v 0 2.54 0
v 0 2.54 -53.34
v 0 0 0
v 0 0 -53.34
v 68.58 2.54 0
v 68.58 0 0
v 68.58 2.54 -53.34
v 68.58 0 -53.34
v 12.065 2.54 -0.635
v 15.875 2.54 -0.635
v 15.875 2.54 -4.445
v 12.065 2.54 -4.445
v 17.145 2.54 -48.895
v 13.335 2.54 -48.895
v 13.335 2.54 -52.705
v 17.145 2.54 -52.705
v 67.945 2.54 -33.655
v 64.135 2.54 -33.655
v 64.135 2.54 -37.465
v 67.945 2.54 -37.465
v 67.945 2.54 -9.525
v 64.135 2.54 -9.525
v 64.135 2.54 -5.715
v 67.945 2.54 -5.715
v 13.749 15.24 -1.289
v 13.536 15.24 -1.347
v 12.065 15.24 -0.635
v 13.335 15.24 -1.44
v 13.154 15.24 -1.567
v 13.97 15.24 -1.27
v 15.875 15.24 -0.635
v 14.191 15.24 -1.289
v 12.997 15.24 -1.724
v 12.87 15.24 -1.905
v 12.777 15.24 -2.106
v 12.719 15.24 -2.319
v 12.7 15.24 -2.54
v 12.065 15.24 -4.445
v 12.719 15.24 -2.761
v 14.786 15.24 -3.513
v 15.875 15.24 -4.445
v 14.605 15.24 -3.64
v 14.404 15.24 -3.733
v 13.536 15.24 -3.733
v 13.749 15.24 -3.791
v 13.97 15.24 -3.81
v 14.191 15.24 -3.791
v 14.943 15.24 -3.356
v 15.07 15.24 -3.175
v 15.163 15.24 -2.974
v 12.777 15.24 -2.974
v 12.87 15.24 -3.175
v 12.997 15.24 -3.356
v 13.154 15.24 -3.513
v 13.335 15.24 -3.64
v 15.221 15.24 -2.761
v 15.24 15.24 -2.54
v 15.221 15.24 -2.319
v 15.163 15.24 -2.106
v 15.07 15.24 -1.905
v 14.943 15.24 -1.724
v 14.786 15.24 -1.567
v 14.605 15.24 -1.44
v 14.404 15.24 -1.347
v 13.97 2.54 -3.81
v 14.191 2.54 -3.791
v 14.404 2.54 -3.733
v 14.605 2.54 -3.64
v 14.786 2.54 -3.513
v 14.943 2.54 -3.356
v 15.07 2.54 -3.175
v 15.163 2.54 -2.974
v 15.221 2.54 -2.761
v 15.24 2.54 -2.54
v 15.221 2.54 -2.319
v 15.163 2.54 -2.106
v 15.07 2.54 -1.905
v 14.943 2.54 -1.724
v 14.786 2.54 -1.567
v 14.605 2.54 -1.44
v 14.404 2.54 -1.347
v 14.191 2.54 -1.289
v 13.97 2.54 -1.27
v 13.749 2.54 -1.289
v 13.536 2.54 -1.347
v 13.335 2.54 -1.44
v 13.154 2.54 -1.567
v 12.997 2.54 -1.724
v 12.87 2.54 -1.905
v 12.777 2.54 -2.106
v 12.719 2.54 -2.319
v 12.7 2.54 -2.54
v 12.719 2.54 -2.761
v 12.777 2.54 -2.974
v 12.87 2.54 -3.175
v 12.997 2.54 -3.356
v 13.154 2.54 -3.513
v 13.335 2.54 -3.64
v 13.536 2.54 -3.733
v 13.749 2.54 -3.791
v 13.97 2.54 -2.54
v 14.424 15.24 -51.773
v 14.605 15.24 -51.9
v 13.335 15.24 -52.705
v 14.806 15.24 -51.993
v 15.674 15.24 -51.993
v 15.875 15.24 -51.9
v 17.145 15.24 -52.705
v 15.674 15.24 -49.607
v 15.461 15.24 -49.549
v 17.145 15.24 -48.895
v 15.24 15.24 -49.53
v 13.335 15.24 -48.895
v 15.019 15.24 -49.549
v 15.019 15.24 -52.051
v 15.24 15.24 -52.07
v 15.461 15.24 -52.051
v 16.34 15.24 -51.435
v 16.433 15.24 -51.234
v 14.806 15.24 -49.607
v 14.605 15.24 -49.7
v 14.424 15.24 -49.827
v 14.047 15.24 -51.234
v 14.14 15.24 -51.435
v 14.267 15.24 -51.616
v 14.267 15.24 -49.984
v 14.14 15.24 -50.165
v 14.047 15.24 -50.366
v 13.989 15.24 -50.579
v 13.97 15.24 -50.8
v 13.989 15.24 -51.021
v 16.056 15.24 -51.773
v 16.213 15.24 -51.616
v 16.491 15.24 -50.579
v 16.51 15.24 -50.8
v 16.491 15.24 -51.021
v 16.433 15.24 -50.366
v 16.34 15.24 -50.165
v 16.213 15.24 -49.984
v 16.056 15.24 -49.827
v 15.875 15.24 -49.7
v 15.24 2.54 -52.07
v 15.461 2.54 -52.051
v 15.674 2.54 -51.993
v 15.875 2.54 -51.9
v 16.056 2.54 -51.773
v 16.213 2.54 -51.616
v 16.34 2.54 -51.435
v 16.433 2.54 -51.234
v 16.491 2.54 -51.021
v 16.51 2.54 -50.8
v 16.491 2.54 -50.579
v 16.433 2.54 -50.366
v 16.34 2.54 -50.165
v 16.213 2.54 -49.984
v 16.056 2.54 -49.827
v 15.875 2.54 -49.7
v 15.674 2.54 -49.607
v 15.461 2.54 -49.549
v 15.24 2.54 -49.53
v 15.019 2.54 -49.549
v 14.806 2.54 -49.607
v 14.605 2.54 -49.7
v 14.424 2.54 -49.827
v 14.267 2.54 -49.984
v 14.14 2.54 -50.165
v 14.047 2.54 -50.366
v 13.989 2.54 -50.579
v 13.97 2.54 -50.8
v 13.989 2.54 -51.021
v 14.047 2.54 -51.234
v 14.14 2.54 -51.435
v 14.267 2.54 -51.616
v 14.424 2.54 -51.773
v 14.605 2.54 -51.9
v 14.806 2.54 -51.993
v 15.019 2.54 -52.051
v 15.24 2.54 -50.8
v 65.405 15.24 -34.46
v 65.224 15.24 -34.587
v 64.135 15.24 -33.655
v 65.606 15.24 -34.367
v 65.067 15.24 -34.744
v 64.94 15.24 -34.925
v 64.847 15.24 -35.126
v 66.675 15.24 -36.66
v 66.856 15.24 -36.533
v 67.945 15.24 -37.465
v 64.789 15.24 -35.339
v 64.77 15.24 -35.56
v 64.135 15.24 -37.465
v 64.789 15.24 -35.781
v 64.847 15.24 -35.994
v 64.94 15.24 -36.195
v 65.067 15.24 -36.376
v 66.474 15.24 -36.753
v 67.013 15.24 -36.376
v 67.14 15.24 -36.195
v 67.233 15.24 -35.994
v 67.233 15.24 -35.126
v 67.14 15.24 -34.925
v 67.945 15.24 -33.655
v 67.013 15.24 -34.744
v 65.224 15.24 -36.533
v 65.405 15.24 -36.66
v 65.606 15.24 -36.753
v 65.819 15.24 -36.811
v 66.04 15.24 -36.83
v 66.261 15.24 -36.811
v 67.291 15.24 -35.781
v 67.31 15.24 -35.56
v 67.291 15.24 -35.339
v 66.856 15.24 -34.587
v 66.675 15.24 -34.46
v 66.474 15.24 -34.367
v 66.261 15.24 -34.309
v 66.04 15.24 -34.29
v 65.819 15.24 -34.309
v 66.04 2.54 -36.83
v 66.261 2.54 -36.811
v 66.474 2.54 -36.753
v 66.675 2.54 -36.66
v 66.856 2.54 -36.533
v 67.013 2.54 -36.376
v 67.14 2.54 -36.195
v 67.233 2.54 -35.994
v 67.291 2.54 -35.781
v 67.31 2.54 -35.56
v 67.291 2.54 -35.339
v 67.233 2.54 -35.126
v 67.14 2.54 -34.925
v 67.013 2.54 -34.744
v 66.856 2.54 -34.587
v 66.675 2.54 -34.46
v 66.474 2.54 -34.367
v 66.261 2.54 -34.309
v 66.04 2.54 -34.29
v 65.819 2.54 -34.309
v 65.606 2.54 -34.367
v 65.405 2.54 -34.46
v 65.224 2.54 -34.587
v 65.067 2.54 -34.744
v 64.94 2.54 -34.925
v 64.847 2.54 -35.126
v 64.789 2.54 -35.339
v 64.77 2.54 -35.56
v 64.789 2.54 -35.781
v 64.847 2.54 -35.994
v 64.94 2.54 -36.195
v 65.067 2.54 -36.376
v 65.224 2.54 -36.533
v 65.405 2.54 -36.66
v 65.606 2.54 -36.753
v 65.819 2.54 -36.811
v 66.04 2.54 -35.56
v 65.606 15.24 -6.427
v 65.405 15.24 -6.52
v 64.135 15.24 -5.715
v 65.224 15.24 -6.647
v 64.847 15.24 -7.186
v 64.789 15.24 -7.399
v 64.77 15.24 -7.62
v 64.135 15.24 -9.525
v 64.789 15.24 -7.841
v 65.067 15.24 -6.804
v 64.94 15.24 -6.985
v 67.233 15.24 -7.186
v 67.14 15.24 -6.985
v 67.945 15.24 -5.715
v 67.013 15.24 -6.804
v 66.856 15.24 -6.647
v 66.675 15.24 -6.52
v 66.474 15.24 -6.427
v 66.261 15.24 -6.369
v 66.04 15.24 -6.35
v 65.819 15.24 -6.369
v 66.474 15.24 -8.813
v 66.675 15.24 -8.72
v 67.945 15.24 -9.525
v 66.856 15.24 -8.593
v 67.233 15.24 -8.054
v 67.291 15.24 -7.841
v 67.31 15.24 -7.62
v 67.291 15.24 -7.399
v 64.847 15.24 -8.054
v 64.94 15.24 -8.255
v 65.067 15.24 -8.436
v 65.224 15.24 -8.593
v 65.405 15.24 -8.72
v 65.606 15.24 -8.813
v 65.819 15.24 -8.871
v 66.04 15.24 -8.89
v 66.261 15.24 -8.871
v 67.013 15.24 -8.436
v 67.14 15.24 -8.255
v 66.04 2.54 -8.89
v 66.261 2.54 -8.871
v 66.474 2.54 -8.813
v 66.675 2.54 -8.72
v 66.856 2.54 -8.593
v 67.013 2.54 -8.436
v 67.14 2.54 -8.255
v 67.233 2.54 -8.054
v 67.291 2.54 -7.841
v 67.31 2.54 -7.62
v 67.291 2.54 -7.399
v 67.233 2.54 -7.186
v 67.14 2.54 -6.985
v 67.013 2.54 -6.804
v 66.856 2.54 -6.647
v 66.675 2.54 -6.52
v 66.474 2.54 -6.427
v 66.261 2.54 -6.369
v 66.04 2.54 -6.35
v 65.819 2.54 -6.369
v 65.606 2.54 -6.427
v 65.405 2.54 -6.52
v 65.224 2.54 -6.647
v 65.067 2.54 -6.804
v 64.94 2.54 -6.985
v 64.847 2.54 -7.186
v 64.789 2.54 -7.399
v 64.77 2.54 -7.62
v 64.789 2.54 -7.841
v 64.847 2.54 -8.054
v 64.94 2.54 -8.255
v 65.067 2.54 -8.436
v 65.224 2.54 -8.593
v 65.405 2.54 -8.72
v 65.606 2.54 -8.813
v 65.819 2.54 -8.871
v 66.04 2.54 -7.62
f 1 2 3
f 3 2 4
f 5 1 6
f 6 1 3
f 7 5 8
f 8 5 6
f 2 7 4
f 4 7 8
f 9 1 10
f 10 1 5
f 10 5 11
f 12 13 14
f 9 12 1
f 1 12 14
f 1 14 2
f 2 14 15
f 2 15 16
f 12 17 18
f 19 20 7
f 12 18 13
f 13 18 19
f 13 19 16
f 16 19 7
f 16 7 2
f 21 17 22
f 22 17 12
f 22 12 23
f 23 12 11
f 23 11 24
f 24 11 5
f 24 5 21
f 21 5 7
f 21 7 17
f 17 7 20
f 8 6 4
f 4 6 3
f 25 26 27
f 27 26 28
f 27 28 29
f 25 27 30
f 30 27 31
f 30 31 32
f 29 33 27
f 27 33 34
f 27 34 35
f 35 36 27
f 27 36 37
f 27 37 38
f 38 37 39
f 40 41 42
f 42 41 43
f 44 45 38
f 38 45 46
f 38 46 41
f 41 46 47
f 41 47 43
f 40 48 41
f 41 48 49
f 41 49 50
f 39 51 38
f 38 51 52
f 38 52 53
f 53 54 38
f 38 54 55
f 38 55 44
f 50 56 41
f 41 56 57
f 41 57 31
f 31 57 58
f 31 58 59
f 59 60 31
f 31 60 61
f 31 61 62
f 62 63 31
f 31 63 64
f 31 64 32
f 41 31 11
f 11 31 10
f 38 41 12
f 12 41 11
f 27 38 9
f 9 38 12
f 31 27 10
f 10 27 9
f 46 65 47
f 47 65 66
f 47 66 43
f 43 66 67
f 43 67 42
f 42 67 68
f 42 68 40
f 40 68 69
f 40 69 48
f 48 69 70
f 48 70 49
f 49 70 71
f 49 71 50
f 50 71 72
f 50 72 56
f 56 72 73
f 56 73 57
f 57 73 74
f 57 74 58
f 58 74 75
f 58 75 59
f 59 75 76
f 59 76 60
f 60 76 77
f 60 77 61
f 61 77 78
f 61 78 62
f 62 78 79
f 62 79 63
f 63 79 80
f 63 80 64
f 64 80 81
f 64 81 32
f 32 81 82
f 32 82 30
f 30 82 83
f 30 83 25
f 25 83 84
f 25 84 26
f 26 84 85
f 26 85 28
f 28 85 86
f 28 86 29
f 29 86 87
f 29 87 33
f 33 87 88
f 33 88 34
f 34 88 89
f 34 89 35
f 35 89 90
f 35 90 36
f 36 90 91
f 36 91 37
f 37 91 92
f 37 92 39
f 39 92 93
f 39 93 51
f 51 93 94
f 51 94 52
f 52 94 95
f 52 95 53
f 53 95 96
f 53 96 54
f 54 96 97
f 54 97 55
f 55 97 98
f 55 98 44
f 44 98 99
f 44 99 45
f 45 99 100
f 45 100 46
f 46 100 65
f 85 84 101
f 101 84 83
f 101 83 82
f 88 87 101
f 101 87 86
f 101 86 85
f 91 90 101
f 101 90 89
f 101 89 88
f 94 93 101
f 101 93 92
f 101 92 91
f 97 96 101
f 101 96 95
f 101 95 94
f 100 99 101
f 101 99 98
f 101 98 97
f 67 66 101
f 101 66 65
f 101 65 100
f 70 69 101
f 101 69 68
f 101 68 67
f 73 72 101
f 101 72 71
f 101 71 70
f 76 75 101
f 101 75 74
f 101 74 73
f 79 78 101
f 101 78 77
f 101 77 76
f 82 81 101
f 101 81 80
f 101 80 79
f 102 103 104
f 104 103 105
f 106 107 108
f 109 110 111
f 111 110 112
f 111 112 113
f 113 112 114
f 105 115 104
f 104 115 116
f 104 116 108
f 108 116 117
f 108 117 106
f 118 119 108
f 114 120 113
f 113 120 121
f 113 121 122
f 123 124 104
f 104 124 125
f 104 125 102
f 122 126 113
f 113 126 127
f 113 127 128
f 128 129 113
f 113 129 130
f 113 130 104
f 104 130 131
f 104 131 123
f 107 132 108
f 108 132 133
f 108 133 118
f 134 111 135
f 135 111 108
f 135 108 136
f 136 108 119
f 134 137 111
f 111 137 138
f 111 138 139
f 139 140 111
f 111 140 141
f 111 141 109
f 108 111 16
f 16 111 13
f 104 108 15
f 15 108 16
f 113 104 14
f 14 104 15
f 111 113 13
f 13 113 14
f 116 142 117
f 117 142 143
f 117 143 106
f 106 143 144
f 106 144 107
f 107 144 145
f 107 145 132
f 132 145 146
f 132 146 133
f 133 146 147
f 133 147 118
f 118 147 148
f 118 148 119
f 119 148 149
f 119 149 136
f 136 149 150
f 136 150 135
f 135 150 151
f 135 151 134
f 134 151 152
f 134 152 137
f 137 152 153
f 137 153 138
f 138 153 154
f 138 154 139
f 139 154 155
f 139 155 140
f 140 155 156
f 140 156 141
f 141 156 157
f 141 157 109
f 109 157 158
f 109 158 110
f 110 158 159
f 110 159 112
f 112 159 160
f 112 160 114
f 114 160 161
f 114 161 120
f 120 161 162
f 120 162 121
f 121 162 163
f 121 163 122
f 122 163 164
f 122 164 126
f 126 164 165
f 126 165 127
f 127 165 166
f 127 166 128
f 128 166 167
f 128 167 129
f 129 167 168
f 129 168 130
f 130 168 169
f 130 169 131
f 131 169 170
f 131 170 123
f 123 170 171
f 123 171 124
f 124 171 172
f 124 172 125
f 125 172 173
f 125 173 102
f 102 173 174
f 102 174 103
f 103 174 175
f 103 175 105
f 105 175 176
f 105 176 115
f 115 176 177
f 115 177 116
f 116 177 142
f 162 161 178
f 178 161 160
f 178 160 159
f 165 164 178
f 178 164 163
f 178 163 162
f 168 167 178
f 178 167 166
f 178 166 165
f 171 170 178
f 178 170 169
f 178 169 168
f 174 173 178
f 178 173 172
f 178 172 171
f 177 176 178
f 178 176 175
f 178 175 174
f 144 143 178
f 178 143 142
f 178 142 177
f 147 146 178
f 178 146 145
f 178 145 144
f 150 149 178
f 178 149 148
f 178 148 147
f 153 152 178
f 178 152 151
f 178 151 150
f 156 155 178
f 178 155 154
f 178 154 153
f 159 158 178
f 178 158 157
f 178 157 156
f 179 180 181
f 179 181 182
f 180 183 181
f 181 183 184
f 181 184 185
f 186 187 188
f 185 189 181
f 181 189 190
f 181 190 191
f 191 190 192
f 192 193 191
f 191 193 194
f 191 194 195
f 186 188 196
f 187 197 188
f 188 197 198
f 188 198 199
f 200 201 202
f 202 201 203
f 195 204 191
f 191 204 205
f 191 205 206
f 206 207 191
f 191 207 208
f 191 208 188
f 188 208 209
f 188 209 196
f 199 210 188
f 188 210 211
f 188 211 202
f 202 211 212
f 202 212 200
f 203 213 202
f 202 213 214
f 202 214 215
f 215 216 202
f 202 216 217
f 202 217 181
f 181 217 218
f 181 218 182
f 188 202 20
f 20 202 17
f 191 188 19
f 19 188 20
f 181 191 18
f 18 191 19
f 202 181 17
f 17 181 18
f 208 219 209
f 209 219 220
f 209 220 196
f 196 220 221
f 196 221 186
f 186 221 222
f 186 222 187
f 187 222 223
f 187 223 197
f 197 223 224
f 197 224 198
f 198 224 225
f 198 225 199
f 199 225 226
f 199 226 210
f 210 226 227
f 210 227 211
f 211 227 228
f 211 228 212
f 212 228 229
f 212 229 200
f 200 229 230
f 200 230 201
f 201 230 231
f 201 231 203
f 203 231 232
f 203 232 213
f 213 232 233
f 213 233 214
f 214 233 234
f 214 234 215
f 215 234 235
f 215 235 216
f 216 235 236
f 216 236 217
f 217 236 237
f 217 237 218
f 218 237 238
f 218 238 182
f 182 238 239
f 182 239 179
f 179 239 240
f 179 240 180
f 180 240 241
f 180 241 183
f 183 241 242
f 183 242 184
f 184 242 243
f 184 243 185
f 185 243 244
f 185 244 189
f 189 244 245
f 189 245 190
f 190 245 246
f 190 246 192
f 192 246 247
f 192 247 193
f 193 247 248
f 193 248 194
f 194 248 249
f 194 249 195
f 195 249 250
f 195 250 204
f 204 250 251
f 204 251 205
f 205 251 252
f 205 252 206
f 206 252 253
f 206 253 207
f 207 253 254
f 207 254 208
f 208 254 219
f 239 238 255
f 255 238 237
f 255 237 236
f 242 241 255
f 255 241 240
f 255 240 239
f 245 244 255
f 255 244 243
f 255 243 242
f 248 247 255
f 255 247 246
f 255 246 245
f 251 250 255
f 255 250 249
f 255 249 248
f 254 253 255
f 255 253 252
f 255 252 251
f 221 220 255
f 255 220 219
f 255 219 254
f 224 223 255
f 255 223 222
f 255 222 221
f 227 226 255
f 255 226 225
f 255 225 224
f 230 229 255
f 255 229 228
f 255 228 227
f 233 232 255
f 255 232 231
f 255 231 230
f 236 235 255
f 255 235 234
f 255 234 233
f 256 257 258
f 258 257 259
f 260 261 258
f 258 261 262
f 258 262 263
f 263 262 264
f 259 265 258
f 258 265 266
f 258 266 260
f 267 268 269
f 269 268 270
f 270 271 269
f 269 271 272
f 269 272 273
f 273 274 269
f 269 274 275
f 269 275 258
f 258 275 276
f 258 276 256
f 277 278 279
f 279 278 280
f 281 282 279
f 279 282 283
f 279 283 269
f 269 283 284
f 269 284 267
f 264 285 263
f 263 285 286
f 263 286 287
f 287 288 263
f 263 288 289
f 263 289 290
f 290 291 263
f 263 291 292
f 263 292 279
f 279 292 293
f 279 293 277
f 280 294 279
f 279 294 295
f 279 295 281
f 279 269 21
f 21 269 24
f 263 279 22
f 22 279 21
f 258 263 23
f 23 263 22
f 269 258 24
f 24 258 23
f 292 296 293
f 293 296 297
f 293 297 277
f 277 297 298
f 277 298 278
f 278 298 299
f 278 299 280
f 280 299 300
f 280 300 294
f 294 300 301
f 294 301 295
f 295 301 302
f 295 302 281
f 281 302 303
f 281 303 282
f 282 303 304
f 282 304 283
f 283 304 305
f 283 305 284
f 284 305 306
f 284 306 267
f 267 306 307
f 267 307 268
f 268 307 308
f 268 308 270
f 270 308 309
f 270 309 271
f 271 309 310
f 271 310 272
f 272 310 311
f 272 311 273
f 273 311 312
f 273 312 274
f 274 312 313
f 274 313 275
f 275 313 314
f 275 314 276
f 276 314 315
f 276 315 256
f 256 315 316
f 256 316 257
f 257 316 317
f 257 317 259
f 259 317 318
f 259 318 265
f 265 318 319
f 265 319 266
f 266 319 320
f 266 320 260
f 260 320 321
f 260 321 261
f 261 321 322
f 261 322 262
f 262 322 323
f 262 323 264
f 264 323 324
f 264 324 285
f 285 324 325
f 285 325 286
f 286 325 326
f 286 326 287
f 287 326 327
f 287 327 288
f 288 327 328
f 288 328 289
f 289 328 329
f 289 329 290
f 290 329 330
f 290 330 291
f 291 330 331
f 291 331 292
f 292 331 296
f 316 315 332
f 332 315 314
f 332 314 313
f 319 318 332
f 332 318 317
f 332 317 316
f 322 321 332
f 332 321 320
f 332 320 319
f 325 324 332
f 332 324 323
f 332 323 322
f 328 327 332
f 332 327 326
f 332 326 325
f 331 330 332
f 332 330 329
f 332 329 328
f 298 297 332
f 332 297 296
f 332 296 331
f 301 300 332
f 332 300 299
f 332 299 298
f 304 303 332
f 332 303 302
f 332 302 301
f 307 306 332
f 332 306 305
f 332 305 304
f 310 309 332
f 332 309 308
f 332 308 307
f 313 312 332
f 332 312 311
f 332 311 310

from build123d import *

# Parameters (mm, degrees)
SKETCH1_W           = 68.58
SKETCH1_H           = 53.34
BOSS_EXTRUDE1_DEPTH = 2.54
SKETCH2_W           = 3.81
SKETCH2_H           = 3.81
SKETCH2_R           = 1.27
BOSS_EXTRUDE2_DEPTH = 12.7
SKETCH3_W           = 3.81
SKETCH3_H           = 3.81
SKETCH3_R           = 1.27
BOSS_EXTRUDE3_DEPTH = 12.7


with BuildPart() as part:
    # Sketch1 → Boss-Extrude1 (new body)
    with BuildSketch(Plane(origin=(0, 0, 0), x_dir=(1, 0, 0), z_dir=(0, 1, 0))):
        with Locations((34.29, 26.67)):
            Rectangle(SKETCH1_W, SKETCH1_H)
    extrude(amount=BOSS_EXTRUDE1_DEPTH)

    # Sketch2 → Boss-Extrude2 (add)
    with BuildSketch(Plane(origin=(0, 2.54, 0), x_dir=(1, 0, 0), z_dir=(0, 1, 0))):
        with Locations((13.97, 2.54)):
            Rectangle(SKETCH2_W, SKETCH2_H)
        with Locations((13.97, 2.54)):
            Circle(SKETCH2_R, mode=Mode.SUBTRACT)
    extrude(amount=BOSS_EXTRUDE2_DEPTH)

    # Sketch3 → Boss-Extrude3 (add)
    with BuildSketch(Plane(origin=(0, 2.54, 0), x_dir=(1, 0, 0), z_dir=(0, 1, 0))):
        with Locations((15.24, 50.8)):
            Rectangle(SKETCH3_W, SKETCH3_H)
        with Locations((15.24, 50.8)):
            Circle(SKETCH3_R, mode=Mode.SUBTRACT)
        with Locations((66.04, 35.56)):
            Rectangle(SKETCH3_W, SKETCH3_H)
        with Locations((66.04, 35.56)):
            Circle(SKETCH3_R, mode=Mode.SUBTRACT)
        with Locations((66.04, 7.62)):
            Rectangle(SKETCH3_W, SKETCH3_H)
        with Locations((66.04, 7.62)):
            Circle(SKETCH3_R, mode=Mode.SUBTRACT)
    extrude(amount=BOSS_EXTRUDE3_DEPTH)


solid = part.part
